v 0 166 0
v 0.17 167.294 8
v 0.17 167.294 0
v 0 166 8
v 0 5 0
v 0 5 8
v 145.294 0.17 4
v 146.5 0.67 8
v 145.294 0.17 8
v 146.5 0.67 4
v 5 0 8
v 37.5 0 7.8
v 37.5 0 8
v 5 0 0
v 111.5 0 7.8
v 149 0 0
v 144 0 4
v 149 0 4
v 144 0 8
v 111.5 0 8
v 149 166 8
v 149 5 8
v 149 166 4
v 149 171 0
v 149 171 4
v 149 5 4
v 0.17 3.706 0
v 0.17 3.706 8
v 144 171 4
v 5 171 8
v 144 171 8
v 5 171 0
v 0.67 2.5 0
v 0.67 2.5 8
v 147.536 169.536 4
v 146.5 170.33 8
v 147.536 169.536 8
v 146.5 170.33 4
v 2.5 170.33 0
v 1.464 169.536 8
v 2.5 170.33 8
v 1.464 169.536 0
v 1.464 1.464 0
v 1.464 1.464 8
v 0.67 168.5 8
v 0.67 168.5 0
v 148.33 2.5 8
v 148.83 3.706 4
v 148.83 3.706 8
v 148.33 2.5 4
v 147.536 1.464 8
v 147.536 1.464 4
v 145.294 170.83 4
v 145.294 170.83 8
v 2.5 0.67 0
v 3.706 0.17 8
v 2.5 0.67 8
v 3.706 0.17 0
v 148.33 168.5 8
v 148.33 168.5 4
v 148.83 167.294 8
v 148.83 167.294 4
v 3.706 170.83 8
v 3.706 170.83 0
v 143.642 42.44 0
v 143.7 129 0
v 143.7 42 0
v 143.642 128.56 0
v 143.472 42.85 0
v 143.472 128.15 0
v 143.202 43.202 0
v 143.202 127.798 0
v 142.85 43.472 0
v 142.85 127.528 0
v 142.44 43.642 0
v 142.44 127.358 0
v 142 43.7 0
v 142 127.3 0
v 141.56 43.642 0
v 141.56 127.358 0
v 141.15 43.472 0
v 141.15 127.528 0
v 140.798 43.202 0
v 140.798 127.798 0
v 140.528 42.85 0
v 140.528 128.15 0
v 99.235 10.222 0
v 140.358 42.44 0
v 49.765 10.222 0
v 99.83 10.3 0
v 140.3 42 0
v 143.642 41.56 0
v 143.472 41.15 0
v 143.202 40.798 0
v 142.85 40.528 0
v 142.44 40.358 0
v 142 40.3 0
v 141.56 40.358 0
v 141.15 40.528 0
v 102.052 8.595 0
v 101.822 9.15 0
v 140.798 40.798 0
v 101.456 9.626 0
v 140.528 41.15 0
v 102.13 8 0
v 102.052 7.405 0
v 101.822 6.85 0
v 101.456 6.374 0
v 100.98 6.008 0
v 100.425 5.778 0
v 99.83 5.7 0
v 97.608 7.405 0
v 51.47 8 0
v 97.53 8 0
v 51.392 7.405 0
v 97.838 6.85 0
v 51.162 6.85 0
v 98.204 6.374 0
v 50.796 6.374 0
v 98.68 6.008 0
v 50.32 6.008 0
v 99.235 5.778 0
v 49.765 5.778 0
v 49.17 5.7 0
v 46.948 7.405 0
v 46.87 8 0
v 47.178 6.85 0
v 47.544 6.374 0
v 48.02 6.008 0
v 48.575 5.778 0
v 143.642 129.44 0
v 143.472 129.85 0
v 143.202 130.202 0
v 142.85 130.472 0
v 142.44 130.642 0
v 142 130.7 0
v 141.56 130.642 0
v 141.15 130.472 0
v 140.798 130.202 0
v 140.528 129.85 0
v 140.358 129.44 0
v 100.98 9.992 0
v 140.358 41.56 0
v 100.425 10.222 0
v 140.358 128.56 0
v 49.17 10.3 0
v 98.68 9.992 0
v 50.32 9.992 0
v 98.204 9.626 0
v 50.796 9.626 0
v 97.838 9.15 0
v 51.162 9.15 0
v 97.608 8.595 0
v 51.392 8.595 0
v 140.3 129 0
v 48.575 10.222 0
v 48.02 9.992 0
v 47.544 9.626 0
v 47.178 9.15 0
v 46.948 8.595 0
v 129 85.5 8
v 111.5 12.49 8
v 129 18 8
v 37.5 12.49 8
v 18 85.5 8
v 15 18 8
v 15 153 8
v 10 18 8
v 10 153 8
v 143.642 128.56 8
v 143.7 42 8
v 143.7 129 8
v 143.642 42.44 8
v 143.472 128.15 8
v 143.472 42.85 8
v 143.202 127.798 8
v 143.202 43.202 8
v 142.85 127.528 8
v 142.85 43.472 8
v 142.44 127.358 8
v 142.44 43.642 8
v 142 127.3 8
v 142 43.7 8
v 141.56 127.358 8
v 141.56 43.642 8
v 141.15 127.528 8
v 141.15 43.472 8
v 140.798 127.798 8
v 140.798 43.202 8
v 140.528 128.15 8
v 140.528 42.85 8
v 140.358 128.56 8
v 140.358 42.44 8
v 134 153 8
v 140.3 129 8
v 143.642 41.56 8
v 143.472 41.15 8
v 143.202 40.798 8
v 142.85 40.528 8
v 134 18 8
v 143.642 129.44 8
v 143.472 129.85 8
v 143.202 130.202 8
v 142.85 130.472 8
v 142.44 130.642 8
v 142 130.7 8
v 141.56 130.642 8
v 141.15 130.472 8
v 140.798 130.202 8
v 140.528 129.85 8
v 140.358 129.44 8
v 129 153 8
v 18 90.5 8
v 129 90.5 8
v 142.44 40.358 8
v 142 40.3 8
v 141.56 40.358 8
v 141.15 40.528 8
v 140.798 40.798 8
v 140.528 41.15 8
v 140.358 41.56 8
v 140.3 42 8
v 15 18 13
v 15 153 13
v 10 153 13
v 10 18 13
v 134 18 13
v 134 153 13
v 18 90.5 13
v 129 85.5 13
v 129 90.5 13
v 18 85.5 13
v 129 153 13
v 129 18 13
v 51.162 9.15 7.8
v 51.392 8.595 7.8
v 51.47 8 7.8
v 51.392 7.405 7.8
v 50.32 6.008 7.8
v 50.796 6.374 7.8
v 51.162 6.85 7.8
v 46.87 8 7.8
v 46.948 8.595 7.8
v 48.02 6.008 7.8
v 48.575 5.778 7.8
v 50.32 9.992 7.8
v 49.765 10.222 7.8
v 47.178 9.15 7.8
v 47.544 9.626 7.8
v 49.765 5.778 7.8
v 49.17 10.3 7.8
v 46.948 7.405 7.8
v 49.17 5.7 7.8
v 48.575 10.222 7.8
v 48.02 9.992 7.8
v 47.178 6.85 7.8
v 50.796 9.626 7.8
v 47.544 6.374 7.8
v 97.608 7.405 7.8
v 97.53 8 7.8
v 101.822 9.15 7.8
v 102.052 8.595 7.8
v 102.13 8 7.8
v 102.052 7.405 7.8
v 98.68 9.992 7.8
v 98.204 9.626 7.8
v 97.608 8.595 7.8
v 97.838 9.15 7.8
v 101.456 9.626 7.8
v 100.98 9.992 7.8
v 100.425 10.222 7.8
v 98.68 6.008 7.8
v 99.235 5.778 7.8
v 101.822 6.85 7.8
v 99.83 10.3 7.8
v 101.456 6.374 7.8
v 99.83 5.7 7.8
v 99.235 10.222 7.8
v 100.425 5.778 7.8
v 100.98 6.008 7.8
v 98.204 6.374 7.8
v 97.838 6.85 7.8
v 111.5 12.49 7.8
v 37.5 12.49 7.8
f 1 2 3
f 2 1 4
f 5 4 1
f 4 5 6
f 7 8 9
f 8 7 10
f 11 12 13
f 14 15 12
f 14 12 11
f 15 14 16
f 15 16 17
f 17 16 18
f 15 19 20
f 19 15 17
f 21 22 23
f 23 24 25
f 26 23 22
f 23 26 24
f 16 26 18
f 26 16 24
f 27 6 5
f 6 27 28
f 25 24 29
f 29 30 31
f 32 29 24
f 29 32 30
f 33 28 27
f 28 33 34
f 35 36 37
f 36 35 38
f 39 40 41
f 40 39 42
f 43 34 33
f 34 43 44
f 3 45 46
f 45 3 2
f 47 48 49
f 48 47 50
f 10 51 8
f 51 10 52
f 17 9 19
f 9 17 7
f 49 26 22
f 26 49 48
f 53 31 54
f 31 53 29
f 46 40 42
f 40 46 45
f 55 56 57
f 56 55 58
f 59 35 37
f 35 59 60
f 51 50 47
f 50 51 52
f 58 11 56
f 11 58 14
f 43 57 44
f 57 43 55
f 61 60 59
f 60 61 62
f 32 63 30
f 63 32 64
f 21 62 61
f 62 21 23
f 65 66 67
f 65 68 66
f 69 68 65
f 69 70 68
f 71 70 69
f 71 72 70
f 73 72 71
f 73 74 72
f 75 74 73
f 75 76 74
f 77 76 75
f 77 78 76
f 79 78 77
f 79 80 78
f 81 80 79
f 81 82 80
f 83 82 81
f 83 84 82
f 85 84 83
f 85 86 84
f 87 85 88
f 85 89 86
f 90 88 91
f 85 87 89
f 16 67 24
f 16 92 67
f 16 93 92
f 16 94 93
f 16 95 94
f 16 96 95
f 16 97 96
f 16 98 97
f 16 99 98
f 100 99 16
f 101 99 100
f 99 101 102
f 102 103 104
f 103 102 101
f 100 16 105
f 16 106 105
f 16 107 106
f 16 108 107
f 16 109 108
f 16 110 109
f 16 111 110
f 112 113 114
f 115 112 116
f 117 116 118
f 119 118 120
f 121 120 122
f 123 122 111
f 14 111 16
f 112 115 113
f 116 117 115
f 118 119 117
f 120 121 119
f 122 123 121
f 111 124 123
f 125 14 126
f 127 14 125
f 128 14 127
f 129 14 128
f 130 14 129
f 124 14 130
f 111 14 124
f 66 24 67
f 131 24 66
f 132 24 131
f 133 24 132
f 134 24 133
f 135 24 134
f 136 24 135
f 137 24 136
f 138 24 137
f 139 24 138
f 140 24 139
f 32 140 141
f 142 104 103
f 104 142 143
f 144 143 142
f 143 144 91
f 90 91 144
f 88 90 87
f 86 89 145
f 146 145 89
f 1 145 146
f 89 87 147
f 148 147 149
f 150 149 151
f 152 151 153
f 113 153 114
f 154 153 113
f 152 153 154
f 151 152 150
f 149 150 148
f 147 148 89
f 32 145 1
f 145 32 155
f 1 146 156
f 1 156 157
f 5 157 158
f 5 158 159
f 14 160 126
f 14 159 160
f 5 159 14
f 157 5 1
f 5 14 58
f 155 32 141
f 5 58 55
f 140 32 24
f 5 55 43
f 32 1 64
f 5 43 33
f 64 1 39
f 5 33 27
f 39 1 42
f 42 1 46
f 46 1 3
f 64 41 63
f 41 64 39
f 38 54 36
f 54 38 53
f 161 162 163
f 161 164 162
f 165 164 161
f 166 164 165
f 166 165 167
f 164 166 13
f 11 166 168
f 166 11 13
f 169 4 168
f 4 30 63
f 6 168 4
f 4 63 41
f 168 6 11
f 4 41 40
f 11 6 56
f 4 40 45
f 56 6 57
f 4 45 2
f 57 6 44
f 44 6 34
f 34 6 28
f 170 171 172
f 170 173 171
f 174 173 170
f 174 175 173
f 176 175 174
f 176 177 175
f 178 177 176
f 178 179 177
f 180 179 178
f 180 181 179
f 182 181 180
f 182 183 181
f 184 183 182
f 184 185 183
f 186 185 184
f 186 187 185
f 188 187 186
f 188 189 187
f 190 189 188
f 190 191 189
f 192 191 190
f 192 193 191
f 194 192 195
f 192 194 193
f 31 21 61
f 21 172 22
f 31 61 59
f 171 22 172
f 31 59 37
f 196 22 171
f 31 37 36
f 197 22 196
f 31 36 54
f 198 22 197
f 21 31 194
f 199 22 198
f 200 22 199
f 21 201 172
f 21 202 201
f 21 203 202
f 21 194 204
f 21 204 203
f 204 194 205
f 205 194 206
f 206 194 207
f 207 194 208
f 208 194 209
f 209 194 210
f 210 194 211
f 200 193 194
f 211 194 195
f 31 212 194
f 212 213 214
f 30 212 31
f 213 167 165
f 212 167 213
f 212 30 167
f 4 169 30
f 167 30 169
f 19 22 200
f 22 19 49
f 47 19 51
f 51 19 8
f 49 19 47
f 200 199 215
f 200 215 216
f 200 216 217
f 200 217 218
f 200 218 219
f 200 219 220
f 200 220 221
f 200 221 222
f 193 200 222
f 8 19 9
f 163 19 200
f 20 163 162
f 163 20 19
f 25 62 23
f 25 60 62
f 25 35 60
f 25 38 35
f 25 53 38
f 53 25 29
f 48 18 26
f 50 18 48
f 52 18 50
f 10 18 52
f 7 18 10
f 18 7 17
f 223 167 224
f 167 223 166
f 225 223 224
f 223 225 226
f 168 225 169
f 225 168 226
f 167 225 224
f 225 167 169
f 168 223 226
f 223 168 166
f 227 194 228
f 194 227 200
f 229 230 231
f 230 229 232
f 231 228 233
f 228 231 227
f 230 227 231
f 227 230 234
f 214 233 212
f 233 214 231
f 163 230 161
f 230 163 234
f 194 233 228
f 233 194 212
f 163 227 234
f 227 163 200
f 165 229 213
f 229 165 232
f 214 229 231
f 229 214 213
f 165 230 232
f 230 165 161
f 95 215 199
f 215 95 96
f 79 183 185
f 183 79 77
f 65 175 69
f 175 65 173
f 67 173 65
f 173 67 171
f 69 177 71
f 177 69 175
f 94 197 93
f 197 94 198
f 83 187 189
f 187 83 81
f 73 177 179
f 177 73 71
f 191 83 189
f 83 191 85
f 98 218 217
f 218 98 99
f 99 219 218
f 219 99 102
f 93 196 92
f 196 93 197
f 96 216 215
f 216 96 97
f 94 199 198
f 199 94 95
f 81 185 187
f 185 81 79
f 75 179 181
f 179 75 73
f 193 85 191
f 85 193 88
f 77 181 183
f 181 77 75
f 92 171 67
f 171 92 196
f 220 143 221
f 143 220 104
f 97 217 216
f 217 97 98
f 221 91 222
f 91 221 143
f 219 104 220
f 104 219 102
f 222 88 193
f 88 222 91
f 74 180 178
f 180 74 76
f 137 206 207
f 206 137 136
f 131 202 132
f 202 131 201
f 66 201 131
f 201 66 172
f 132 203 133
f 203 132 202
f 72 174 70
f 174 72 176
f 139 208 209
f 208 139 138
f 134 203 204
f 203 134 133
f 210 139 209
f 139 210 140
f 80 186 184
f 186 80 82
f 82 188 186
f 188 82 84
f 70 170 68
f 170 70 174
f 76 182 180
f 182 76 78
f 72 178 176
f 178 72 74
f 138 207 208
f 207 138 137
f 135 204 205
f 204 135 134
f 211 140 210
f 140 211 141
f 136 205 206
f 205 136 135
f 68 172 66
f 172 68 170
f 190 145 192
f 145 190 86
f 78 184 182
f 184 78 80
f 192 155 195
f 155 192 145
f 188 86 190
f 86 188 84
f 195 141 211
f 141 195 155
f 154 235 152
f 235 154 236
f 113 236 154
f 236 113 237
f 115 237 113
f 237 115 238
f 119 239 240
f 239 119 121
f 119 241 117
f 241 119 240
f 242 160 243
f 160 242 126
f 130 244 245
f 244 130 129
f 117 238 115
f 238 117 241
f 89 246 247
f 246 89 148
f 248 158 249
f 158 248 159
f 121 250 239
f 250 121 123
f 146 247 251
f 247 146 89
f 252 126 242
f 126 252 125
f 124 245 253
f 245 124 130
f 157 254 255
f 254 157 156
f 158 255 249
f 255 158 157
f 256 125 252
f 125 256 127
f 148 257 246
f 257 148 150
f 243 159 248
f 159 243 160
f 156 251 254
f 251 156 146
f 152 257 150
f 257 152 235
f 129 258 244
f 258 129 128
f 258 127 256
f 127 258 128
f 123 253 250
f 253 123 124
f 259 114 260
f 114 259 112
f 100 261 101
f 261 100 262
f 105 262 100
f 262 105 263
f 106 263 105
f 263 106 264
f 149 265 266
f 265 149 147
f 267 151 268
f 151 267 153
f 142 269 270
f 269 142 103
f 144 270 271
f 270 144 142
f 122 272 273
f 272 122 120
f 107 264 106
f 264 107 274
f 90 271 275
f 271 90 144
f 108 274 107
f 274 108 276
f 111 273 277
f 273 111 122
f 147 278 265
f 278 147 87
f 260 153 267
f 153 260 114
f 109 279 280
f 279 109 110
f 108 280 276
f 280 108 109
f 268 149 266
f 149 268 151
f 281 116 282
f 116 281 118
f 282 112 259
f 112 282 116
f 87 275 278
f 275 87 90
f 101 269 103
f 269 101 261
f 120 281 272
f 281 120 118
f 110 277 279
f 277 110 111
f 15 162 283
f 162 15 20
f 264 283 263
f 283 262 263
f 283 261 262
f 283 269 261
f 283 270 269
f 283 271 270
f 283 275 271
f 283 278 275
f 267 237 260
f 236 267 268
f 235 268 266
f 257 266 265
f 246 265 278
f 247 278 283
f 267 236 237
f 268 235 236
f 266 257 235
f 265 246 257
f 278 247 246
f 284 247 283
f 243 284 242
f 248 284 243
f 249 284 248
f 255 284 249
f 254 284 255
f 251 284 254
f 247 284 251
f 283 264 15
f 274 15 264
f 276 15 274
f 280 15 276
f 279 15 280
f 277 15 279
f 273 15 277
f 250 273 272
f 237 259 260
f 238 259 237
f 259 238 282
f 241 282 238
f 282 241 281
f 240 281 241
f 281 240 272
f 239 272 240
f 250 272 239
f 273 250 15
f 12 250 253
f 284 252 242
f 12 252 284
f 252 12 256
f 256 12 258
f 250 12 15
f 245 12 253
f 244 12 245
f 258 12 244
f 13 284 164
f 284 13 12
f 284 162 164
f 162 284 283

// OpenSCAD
// file: 00_parameters.scad
// TenderCells DoorCell V1 shared parameters
// Units: millimeters

overall_w = 438;
overall_h = 368;
frame_depth = 56;

clear_w = 242;
clear_h = 312;

rail_thick = 32;
jamb_w = 48;
motor_jamb_w = 78;

// Printability targets
target_bed_xy = 220;
comfortable_part_max = 180;

// Modular frame split dimensions
top_seg_len = overall_w / 3;
bottom_seg_len = overall_w / 3;
left_jamb_seg_h = overall_h / 2;
right_lower_h = 118;
right_motor_h = 156;
right_upper_h = overall_h - right_lower_h - right_motor_h;

// Low-cost electronics envelope used by DoorCell V1.4.
// These dimensions are based on common generic modules, not a custom PCB.
esp32_board = [58, 31, 8];
drv8871_board = [31, 26, 7];
current_sensor_board = [26, 22, 7];
lm2596_board = [44, 22, 14];
inline_fuse_body = [45, 15, 14];
cn3065_board = [44, 24, 8];
electronics_clearance = 1.5;
controller_wall = 3;
controller_box_w = 170;
controller_box_h = 115;
controller_box_d = 46;
controller_lid_insert_offset = 11;
controller_m12_gland_d = 12.8;
controller_m10_gland_d = 10.6;
controller_m8_gland_d = 8.4;
controller_button_d = 16.2;

// Brass heat-set/push-in insert features.
insert_post_d = 8.0;
insert_post_h = 8.0;
insert_pilot_d = 4.6;
insert_pilot_depth = 6.5;
hold_down_screw_clearance = 3.4;

// Motor envelope for common 25GA/JGA25-370 gearmotors with optional encoder.
motor_body_d = 25.0;
motor_body_clearance_d = 27.2;
motor_body_len = 65;
motor_encoder_clearance = 16;
motor_mount_plate = [72, 92, 12];
motor_mount_cradle = [54, 74, 28];

// Optional solar add-on.
solar_panel_w = 145;
solar_panel_h = 145;
solar_panel_t = 4.0;
solar_panel_frame_border = 10;
solar_panel_frame_w = solar_panel_w + 2*solar_panel_frame_border;
solar_panel_frame_h = solar_panel_h + 2*solar_panel_frame_border;
solar_panel_back_depth = 14;
solar_panel_lip_overlap = 3;
solar_ball_d = 22;
solar_ball_socket_clearance = 0.45;
solar_mount_m5 = 5.4;

// Tongue-and-groove frame joints
// Fit target: common FDM printers with PETG/ASA.
// Clearance is per side, so sockets add 2x this value.
tongue_len = 18;
tongue_w = 22;
tongue_z = 10;
tongue_clearance_side = 0.25;
tongue_socket_depth_extra = 0.60;

door_w = 270;
door_h = 326;
door_t = 8;

track_gap = 11;
track_depth = 12;

// Rack-and-pinion drive
// Metric module gear math:
// circular_pitch = PI * module
// pitch_diameter = module * tooth_count
// outside_diameter = module * (tooth_count + 2)
// root_diameter = module * (tooth_count - 2.5)
gear_module = 2.0;
pressure_angle = 20;
gear_backlash = 0.20; // mm removed from rack tooth thickness at pitch line

pinion_teeth = 16;
pinion_pitch_d = gear_module * pinion_teeth;
pinion_pitch_radius = pinion_pitch_d / 2;
pinion_outer_d = gear_module * (pinion_teeth + 2);
pinion_outer_radius = pinion_outer_d / 2;
pinion_root_d = gear_module * (pinion_teeth - 2.5);
pinion_root_radius = pinion_root_d / 2;
pinion_thick = 12;
shaft_d = 6.2;

rack_tooth_count = 15;
rack_circular_pitch = 3.141592653589793 * gear_module;
rack_len = rack_circular_pitch * rack_tooth_count;
rack_w = 18;
rack_t = 6;
rack_addendum = gear_module;
rack_dedendum = 1.25 * gear_module;
rack_tooth_h = rack_addendum + rack_dedendum;
rack_pitch_line_z = rack_dedendum;
rack_tooth_pitch_thickness = rack_circular_pitch / 2 - gear_backlash;
rack_tooth_top_w = rack_tooth_pitch_thickness - 2 * rack_addendum * tan(pressure_angle);
rack_tooth_root_w = rack_tooth_pitch_thickness + 2 * rack_dedendum * tan(pressure_angle);

screw_m3 = 3.4;
screw_m4 = 4.5;
insert_m3 = 4.6;

eps = 0.01;

module rounded_box(size=[10,10,10], r=2) {
  hull() {
    translate([r,r,0]) cylinder(h=size[2], r=r, $fn=24);
    translate([size[0]-r,r,0]) cylinder(h=size[2], r=r, $fn=24);
    translate([r,size[1]-r,0]) cylinder(h=size[2], r=r, $fn=24);
    translate([size[0]-r,size[1]-r,0]) cylinder(h=size[2], r=r, $fn=24);
  }
}

module m3_clearance_hole(h=20) {
  cylinder(h=h, d=screw_m3, $fn=24);
}

module m4_clearance_hole(h=20) {
  cylinder(h=h, d=screw_m4, $fn=24);
}

module heat_insert_hole(h=6) {
  cylinder(h=h, d=insert_m3, $fn=24);
}

module heat_insert_post(h=insert_post_h, d=insert_post_d) {
  difference() {
    cylinder(h=h, d=d, $fn=32);
    translate([0,0,h-insert_pilot_depth+eps])
      cylinder(h=insert_pilot_depth+eps, d=insert_pilot_d, $fn=24);
  }
}

module m3_hold_down_slot(length=10, h=4) {
  hull() {
    translate([-length/2,0,0]) cylinder(h=h, d=hold_down_screw_clearance, $fn=20);
    translate([ length/2,0,0]) cylinder(h=h, d=hold_down_screw_clearance, $fn=20);
  }
}

module rail_channel(length=100) {
  cube([length, track_gap, track_depth]);
}

module frame_tongue_x() {
  rounded_box([tongue_len, tongue_w, tongue_z], r=1.5);
}

module frame_socket_x() {
  cube([
    tongue_len + tongue_socket_depth_extra,
    tongue_w + 2*tongue_clearance_side,
    tongue_z + 2*tongue_clearance_side
  ]);
}

module frame_tongue_y() {
  rounded_box([tongue_w, tongue_len, tongue_z], r=1.5);
}

module frame_socket_y() {
  cube([
    tongue_w + 2*tongue_clearance_side,
    tongue_len + tongue_socket_depth_extra,
    tongue_z + 2*tongue_clearance_side
  ]);
}

module rack_teeth(len=rack_len) {
  teeth = floor(len / rack_circular_pitch);
  for (i=[0:teeth-1]) {
    center = i*rack_circular_pitch + rack_circular_pitch/2;
    translate([0, 0, rack_t-0.20])
      linear_extrude(height=rack_w)
        polygon(points=[
          [center - rack_tooth_root_w/2, 0],
          [center + rack_tooth_root_w/2, 0],
          [center + rack_tooth_top_w/2, rack_tooth_h],
          [center - rack_tooth_top_w/2, rack_tooth_h]
        ]);
  }
}

function polar_point(r, a) = [r * cos(a), r * sin(a)];
// file: sliding_door_modular_common.scad
include <00_parameters.scad>

door_part_w = door_w/2 + 14;
door_part_h = door_h/2 + 8;
door_mid_overlap = 14;
door_v_overlap = 12;

module door_tongue_y(width=72) {
  rounded_box([width, door_v_overlap, 3], r=1.5);
}

module door_socket_y(width=74) {
  cube([width, door_v_overlap + 2*tongue_clearance_side, 3.8]);
}

module sliding_door_quadrant(side="left", row="lower") {
  difference() {
    union() {
      rounded_box([door_part_w, door_part_h, door_t], r=5);

      // Vertical center lap between left and right panels.
      if (side == "left") {
        translate([door_part_w-door_mid_overlap, 0, 0])
          cube([door_mid_overlap, door_part_h, door_t/2]);
      } else {
        translate([0, 0, door_t/2])
          cube([door_mid_overlap, door_part_h, door_t/2]);
      }

      // Horizontal lap between lower and upper panels.
      if (row == "lower") {
        translate([door_part_w/2-36, door_part_h-eps, door_t])
          door_tongue_y(width=72);
      }

      // Stiffening ribs.
      translate([10, 18, door_t])
        cube([5, door_part_h-36, 5]);
      translate([door_part_w-20, 18, door_t])
        cube([5, door_part_h-36, 5]);
      translate([18, door_part_h/2, door_t])
        cube([door_part_w-36, 5, 5]);
    }

    if (row == "upper") {
      translate([door_part_w/2-37, -eps, door_t-0.2])
        door_socket_y(width=74);
    }

    // Center lap fastener holes.
    if (side == "left") {
      for (y=[42, door_part_h-42]) {
        translate([door_part_w-door_mid_overlap/2, y, -eps])
          m3_clearance_hole(h=door_t+10);
      }
    } else {
      for (y=[42, door_part_h-42]) {
        translate([door_mid_overlap/2, y, -eps])
          heat_insert_hole(h=door_t+1);
      }
    }

    // Horizontal split fastener holes.
    if (row == "lower") {
      for (x=[door_part_w*0.33, door_part_w*0.67]) {
        translate([x, door_part_h-8, -eps])
          m3_clearance_hole(h=door_t+10);
      }
    } else {
      for (x=[door_part_w*0.33, door_part_w*0.67]) {
        translate([x, 8, -eps])
          heat_insert_hole(h=door_t+1);
      }
    }

    // Rack mounting holes only on lower row.
    if (row == "lower") {
      for (x=[35, 85, 125]) {
        translate([x, 24, -eps]) heat_insert_hole(h=door_t+1);
      }
    }
  }
}
// main file
include <sliding_door_modular_common.scad>

sliding_door_quadrant(side="left", row="upper");
